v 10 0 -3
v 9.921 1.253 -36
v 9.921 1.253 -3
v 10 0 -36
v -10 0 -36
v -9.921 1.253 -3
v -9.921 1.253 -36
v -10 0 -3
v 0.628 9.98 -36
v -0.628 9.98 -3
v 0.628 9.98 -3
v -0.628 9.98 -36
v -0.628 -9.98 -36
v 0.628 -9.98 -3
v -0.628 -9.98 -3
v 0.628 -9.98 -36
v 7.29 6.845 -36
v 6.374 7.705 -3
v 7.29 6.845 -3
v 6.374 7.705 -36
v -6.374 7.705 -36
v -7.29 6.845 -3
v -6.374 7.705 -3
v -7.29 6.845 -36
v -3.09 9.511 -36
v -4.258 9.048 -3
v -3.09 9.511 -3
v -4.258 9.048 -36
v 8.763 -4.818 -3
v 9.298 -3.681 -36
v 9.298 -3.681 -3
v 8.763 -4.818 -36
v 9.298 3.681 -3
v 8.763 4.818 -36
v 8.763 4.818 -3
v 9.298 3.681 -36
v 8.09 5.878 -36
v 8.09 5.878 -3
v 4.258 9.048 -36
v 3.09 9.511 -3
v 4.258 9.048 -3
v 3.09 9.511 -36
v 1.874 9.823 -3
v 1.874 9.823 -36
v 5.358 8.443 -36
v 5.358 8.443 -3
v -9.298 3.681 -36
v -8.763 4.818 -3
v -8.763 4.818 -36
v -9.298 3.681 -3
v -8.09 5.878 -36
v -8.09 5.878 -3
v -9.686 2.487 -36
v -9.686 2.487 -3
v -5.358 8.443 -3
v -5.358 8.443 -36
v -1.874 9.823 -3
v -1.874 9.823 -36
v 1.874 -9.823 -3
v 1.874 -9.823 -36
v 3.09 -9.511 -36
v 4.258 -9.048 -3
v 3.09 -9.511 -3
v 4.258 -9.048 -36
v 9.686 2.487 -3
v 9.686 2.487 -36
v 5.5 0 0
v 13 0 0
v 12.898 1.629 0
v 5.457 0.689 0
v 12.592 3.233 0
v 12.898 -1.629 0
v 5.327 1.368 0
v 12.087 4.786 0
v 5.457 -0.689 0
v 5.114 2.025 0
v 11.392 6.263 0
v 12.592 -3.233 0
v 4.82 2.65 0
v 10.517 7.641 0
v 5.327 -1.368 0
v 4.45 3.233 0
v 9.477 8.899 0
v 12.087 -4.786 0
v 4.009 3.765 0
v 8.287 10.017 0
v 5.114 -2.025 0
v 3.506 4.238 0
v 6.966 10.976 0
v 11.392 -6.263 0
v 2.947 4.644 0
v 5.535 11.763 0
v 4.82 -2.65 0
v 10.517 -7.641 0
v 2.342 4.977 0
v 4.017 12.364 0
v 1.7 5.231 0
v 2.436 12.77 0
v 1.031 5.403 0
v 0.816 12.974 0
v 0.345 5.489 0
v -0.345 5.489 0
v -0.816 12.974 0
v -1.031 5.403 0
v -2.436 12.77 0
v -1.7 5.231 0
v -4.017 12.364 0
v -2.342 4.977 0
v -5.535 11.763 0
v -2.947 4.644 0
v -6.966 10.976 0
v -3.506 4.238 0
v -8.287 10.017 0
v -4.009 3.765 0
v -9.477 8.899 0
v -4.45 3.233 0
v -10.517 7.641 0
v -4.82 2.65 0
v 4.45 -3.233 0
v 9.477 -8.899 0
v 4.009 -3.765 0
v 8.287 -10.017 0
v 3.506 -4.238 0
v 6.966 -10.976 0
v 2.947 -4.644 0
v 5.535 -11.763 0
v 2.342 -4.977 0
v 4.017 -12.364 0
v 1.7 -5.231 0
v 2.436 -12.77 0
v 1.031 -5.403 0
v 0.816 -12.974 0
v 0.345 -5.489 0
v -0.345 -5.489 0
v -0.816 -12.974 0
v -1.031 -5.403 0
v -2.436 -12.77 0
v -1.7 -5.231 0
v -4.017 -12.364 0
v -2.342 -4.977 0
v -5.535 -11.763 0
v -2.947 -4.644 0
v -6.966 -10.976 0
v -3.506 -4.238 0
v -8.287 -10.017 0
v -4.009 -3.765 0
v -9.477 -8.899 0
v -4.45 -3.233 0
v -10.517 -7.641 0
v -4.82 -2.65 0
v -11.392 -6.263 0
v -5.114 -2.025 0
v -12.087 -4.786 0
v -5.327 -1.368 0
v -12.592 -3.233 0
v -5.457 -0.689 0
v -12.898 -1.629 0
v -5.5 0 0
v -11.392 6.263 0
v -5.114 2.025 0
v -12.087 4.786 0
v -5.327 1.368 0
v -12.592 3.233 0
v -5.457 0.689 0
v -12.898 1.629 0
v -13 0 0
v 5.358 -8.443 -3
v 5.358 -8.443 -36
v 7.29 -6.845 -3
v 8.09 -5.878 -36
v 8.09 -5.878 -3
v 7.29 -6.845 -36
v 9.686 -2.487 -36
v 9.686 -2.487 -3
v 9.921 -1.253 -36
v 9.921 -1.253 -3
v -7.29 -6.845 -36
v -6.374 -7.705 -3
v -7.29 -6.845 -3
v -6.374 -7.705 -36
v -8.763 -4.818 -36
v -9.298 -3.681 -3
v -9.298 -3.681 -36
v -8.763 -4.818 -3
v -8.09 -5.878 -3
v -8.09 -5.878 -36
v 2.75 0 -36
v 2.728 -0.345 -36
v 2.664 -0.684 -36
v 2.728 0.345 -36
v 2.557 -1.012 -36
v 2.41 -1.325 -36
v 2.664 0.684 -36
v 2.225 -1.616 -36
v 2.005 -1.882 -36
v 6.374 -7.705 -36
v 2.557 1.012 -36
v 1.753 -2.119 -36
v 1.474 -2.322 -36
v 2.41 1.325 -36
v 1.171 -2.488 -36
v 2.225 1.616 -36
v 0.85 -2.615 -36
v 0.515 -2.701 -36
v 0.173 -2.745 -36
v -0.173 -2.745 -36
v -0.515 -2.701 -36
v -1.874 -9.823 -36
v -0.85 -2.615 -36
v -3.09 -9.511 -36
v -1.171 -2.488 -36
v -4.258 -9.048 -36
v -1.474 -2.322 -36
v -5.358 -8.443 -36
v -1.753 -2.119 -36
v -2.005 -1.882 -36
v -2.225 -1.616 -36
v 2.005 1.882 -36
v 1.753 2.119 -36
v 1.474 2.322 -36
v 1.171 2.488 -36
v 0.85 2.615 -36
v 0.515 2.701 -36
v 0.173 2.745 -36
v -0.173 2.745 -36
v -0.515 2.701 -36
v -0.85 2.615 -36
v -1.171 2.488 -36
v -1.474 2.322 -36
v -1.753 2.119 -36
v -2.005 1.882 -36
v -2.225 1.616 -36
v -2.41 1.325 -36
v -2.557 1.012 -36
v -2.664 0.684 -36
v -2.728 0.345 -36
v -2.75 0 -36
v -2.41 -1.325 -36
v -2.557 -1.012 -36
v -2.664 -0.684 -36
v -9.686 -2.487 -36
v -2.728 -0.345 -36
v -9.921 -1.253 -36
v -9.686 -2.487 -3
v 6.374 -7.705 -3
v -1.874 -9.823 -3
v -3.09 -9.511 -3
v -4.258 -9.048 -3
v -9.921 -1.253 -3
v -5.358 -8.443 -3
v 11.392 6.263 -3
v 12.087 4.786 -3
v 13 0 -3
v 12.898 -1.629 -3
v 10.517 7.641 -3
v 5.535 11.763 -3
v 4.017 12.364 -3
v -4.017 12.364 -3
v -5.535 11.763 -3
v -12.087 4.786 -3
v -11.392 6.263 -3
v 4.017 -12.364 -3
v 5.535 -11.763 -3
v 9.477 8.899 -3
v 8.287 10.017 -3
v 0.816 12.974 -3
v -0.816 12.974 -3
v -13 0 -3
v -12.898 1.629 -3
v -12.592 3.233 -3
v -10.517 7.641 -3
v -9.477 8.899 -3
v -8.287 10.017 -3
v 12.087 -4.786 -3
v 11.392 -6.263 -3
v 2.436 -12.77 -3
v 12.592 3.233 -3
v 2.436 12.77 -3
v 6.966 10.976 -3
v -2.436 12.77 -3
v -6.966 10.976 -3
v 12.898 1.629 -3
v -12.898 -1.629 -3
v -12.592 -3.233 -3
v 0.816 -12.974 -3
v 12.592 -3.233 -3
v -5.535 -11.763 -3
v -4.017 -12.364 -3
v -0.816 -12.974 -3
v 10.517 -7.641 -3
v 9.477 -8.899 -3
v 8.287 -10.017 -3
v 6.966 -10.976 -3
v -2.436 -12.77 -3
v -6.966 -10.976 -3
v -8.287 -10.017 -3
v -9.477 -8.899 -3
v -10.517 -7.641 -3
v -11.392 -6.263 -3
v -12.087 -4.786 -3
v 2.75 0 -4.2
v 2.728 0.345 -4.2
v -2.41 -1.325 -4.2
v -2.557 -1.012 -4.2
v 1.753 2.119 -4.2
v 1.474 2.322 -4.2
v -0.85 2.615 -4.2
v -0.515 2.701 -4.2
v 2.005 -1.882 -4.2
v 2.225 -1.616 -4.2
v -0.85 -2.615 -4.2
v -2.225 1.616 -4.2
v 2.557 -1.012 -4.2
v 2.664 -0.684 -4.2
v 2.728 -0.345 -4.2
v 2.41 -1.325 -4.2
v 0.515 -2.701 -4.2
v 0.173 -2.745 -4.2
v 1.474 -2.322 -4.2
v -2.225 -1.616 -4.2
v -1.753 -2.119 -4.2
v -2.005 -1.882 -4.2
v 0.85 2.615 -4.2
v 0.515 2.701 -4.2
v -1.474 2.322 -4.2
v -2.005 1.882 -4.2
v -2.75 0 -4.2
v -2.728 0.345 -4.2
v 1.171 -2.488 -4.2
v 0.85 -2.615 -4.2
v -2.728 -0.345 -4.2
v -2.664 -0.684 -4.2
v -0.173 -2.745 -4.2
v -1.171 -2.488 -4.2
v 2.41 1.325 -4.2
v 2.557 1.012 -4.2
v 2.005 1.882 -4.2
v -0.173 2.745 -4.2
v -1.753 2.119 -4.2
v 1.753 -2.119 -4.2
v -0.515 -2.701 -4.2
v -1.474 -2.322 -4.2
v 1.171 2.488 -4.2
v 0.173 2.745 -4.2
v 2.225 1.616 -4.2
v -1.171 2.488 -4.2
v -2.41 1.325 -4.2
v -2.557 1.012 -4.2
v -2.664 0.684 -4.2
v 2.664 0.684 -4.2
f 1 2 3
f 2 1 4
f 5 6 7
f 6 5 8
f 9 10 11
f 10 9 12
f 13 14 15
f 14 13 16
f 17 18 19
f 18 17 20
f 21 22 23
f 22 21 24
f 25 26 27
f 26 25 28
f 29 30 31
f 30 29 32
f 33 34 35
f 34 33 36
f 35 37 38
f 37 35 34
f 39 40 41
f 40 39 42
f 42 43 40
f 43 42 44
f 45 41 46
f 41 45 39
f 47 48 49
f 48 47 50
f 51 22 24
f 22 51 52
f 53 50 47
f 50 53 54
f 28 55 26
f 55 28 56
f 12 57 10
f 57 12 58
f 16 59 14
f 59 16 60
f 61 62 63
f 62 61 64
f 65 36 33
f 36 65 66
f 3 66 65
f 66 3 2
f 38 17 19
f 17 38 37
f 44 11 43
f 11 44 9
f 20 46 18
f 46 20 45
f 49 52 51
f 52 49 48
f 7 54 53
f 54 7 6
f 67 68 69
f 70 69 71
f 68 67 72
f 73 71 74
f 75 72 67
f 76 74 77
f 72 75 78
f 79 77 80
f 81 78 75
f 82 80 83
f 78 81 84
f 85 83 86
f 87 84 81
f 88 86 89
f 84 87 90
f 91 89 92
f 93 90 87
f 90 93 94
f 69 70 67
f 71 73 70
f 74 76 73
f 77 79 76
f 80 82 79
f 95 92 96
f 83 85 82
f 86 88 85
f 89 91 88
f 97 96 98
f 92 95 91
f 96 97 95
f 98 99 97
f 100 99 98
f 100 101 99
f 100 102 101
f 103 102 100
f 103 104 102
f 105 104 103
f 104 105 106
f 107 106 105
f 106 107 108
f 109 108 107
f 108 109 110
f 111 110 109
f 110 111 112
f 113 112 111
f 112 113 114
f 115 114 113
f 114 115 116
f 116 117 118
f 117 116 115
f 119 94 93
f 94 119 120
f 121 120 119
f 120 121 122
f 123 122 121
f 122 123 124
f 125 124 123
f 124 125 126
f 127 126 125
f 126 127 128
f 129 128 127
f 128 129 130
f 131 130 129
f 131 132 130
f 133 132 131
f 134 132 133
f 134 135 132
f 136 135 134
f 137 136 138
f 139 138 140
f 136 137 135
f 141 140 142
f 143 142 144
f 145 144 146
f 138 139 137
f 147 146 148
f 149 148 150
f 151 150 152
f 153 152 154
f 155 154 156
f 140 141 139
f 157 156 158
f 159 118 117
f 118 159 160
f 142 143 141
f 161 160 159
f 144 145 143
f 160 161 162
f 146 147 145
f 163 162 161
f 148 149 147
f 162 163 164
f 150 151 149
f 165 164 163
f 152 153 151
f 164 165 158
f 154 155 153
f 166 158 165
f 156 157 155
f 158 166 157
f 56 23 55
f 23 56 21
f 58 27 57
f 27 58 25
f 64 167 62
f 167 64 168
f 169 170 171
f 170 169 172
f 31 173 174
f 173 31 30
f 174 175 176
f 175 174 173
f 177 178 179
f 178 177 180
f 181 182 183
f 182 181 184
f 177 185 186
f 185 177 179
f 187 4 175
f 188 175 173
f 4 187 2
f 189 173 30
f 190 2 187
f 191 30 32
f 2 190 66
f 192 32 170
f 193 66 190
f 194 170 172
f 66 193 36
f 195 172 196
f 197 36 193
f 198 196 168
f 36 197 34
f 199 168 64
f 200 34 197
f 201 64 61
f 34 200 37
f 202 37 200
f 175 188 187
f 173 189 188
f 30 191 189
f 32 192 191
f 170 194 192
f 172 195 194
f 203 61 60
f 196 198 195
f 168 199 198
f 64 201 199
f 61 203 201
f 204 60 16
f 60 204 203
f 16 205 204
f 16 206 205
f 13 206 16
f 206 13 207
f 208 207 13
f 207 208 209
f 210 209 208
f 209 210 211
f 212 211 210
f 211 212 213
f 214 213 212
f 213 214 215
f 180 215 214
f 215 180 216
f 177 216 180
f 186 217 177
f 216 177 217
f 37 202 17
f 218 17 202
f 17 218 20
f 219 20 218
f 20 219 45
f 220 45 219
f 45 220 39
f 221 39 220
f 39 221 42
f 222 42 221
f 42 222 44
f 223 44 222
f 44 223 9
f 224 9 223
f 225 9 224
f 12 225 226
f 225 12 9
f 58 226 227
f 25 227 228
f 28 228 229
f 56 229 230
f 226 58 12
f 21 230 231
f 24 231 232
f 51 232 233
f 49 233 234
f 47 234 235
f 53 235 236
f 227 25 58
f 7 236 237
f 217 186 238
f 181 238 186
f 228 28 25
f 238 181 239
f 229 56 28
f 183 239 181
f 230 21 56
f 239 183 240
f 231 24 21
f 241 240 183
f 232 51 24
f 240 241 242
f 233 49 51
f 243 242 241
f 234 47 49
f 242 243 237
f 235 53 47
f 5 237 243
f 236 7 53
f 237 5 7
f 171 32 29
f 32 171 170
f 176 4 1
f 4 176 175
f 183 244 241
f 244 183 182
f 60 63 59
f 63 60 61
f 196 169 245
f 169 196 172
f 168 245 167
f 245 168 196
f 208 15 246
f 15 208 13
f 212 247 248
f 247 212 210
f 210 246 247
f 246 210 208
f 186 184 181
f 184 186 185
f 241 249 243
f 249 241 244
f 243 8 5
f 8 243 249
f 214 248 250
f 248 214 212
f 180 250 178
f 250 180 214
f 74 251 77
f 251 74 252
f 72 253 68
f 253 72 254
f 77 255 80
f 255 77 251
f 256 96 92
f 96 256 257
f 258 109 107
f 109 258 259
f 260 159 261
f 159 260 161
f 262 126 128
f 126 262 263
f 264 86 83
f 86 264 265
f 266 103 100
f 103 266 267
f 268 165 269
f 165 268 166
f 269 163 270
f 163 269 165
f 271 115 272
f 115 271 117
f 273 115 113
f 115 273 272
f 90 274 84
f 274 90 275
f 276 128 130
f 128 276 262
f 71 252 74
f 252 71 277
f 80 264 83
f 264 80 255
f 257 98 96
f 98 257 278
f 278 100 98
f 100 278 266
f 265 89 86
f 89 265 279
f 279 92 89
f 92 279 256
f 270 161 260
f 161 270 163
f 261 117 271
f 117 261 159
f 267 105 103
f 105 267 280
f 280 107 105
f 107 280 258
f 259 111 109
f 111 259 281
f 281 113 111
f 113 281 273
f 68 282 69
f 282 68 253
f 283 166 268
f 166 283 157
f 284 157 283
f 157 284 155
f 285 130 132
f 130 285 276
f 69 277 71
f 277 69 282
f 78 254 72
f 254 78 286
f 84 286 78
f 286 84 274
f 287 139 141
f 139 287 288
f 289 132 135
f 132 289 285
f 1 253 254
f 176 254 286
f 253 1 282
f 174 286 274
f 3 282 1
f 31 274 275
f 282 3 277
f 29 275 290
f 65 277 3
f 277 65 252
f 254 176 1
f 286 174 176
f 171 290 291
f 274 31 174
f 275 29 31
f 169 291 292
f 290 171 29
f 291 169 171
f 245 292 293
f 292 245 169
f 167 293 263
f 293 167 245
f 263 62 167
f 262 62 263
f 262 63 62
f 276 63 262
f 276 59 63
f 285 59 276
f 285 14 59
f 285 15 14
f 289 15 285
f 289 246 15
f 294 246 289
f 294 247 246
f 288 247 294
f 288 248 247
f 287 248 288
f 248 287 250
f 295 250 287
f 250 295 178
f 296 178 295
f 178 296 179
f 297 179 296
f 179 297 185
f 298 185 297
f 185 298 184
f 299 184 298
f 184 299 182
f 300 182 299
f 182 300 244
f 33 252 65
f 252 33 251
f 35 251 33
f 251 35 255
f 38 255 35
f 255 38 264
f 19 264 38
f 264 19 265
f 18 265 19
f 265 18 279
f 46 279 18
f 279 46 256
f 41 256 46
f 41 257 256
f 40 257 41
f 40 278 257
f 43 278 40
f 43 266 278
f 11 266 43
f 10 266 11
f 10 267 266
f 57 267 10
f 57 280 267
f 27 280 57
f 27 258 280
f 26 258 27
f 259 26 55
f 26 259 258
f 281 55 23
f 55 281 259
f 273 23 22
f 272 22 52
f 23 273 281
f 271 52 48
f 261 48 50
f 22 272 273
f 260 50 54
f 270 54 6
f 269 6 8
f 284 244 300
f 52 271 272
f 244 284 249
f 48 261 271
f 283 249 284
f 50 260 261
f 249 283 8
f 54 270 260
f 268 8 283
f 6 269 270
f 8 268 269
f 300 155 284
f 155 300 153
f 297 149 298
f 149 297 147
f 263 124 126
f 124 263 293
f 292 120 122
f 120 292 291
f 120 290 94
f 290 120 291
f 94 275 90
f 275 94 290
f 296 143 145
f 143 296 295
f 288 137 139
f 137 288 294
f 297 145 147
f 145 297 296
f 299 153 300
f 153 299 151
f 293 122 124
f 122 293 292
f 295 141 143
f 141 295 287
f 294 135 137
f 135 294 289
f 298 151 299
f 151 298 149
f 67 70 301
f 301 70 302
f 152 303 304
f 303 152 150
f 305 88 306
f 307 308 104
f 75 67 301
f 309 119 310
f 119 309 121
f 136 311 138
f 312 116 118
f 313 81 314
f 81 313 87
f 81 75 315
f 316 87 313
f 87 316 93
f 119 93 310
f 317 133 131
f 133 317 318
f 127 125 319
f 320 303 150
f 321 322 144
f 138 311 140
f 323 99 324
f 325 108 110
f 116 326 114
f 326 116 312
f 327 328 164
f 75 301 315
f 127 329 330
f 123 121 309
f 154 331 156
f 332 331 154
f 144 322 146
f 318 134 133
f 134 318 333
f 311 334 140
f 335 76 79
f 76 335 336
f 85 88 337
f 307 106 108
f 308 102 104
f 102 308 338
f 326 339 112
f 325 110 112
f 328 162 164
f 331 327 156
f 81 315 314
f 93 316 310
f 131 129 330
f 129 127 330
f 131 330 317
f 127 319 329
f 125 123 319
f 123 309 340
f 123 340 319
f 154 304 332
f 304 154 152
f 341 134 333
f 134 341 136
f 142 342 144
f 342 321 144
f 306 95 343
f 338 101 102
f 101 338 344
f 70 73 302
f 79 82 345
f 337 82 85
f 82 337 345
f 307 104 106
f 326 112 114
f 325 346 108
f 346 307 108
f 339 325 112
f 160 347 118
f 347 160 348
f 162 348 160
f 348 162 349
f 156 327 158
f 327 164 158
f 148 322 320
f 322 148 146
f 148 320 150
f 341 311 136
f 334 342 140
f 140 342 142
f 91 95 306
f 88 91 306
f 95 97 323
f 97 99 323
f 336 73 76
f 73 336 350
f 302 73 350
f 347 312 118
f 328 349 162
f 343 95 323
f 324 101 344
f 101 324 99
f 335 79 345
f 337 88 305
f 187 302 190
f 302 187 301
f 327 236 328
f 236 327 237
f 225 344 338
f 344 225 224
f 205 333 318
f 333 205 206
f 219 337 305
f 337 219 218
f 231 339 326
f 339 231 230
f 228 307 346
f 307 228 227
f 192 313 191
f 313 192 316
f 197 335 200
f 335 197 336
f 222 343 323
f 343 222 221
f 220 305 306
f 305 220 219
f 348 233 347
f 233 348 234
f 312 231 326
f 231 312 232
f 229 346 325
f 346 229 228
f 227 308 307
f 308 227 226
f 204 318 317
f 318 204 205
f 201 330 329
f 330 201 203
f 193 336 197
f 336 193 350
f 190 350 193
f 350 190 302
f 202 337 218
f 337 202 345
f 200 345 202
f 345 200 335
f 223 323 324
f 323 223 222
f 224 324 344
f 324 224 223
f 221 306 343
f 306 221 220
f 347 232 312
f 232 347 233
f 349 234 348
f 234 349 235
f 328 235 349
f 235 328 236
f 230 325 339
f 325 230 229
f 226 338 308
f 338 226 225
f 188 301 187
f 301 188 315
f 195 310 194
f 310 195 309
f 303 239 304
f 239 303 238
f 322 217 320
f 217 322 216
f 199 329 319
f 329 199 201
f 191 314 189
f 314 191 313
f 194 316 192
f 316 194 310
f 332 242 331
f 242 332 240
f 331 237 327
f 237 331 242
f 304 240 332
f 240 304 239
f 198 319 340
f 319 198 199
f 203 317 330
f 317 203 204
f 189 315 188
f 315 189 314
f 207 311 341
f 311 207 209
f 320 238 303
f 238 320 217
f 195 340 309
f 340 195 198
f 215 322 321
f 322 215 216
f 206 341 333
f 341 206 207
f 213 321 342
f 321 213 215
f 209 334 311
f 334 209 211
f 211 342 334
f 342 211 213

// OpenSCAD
$fn = 50;


difference() {
	union() {
		translate(v = [0, 0, -36.0000000000]) {
			cylinder(h = 36, r = 10.0000000000);
		}
		translate(v = [0, 0, -3.0000000000]) {
			cylinder(h = 3, r = 13.0000000000);
		}
	}
	union() {
		translate(v = [0, 0, 0]) {
			rotate(a = [0, 0, 0]) {
				difference() {
					union() {
						#translate(v = [0, 0, -36.0000000000]) {
							cylinder(h = 36, r = 2.2500000000);
						}
						#translate(v = [0, 0, -4.2000000000]) {
							cylinder(h = 4.2000000000, r = 10.0000000000, r1 = 2.7500000000, r2 = 5.5000000000);
						}
						#translate(v = [0, 0, -36.0000000000]) {
							cylinder(h = 36, r = 2.7500000000);
						}
						#translate(v = [0, 0, -36.0000000000]) {
							cylinder(h = 36, r = 2.2500000000);
						}
					}
					union();
				}
			}
		}
	}
}
